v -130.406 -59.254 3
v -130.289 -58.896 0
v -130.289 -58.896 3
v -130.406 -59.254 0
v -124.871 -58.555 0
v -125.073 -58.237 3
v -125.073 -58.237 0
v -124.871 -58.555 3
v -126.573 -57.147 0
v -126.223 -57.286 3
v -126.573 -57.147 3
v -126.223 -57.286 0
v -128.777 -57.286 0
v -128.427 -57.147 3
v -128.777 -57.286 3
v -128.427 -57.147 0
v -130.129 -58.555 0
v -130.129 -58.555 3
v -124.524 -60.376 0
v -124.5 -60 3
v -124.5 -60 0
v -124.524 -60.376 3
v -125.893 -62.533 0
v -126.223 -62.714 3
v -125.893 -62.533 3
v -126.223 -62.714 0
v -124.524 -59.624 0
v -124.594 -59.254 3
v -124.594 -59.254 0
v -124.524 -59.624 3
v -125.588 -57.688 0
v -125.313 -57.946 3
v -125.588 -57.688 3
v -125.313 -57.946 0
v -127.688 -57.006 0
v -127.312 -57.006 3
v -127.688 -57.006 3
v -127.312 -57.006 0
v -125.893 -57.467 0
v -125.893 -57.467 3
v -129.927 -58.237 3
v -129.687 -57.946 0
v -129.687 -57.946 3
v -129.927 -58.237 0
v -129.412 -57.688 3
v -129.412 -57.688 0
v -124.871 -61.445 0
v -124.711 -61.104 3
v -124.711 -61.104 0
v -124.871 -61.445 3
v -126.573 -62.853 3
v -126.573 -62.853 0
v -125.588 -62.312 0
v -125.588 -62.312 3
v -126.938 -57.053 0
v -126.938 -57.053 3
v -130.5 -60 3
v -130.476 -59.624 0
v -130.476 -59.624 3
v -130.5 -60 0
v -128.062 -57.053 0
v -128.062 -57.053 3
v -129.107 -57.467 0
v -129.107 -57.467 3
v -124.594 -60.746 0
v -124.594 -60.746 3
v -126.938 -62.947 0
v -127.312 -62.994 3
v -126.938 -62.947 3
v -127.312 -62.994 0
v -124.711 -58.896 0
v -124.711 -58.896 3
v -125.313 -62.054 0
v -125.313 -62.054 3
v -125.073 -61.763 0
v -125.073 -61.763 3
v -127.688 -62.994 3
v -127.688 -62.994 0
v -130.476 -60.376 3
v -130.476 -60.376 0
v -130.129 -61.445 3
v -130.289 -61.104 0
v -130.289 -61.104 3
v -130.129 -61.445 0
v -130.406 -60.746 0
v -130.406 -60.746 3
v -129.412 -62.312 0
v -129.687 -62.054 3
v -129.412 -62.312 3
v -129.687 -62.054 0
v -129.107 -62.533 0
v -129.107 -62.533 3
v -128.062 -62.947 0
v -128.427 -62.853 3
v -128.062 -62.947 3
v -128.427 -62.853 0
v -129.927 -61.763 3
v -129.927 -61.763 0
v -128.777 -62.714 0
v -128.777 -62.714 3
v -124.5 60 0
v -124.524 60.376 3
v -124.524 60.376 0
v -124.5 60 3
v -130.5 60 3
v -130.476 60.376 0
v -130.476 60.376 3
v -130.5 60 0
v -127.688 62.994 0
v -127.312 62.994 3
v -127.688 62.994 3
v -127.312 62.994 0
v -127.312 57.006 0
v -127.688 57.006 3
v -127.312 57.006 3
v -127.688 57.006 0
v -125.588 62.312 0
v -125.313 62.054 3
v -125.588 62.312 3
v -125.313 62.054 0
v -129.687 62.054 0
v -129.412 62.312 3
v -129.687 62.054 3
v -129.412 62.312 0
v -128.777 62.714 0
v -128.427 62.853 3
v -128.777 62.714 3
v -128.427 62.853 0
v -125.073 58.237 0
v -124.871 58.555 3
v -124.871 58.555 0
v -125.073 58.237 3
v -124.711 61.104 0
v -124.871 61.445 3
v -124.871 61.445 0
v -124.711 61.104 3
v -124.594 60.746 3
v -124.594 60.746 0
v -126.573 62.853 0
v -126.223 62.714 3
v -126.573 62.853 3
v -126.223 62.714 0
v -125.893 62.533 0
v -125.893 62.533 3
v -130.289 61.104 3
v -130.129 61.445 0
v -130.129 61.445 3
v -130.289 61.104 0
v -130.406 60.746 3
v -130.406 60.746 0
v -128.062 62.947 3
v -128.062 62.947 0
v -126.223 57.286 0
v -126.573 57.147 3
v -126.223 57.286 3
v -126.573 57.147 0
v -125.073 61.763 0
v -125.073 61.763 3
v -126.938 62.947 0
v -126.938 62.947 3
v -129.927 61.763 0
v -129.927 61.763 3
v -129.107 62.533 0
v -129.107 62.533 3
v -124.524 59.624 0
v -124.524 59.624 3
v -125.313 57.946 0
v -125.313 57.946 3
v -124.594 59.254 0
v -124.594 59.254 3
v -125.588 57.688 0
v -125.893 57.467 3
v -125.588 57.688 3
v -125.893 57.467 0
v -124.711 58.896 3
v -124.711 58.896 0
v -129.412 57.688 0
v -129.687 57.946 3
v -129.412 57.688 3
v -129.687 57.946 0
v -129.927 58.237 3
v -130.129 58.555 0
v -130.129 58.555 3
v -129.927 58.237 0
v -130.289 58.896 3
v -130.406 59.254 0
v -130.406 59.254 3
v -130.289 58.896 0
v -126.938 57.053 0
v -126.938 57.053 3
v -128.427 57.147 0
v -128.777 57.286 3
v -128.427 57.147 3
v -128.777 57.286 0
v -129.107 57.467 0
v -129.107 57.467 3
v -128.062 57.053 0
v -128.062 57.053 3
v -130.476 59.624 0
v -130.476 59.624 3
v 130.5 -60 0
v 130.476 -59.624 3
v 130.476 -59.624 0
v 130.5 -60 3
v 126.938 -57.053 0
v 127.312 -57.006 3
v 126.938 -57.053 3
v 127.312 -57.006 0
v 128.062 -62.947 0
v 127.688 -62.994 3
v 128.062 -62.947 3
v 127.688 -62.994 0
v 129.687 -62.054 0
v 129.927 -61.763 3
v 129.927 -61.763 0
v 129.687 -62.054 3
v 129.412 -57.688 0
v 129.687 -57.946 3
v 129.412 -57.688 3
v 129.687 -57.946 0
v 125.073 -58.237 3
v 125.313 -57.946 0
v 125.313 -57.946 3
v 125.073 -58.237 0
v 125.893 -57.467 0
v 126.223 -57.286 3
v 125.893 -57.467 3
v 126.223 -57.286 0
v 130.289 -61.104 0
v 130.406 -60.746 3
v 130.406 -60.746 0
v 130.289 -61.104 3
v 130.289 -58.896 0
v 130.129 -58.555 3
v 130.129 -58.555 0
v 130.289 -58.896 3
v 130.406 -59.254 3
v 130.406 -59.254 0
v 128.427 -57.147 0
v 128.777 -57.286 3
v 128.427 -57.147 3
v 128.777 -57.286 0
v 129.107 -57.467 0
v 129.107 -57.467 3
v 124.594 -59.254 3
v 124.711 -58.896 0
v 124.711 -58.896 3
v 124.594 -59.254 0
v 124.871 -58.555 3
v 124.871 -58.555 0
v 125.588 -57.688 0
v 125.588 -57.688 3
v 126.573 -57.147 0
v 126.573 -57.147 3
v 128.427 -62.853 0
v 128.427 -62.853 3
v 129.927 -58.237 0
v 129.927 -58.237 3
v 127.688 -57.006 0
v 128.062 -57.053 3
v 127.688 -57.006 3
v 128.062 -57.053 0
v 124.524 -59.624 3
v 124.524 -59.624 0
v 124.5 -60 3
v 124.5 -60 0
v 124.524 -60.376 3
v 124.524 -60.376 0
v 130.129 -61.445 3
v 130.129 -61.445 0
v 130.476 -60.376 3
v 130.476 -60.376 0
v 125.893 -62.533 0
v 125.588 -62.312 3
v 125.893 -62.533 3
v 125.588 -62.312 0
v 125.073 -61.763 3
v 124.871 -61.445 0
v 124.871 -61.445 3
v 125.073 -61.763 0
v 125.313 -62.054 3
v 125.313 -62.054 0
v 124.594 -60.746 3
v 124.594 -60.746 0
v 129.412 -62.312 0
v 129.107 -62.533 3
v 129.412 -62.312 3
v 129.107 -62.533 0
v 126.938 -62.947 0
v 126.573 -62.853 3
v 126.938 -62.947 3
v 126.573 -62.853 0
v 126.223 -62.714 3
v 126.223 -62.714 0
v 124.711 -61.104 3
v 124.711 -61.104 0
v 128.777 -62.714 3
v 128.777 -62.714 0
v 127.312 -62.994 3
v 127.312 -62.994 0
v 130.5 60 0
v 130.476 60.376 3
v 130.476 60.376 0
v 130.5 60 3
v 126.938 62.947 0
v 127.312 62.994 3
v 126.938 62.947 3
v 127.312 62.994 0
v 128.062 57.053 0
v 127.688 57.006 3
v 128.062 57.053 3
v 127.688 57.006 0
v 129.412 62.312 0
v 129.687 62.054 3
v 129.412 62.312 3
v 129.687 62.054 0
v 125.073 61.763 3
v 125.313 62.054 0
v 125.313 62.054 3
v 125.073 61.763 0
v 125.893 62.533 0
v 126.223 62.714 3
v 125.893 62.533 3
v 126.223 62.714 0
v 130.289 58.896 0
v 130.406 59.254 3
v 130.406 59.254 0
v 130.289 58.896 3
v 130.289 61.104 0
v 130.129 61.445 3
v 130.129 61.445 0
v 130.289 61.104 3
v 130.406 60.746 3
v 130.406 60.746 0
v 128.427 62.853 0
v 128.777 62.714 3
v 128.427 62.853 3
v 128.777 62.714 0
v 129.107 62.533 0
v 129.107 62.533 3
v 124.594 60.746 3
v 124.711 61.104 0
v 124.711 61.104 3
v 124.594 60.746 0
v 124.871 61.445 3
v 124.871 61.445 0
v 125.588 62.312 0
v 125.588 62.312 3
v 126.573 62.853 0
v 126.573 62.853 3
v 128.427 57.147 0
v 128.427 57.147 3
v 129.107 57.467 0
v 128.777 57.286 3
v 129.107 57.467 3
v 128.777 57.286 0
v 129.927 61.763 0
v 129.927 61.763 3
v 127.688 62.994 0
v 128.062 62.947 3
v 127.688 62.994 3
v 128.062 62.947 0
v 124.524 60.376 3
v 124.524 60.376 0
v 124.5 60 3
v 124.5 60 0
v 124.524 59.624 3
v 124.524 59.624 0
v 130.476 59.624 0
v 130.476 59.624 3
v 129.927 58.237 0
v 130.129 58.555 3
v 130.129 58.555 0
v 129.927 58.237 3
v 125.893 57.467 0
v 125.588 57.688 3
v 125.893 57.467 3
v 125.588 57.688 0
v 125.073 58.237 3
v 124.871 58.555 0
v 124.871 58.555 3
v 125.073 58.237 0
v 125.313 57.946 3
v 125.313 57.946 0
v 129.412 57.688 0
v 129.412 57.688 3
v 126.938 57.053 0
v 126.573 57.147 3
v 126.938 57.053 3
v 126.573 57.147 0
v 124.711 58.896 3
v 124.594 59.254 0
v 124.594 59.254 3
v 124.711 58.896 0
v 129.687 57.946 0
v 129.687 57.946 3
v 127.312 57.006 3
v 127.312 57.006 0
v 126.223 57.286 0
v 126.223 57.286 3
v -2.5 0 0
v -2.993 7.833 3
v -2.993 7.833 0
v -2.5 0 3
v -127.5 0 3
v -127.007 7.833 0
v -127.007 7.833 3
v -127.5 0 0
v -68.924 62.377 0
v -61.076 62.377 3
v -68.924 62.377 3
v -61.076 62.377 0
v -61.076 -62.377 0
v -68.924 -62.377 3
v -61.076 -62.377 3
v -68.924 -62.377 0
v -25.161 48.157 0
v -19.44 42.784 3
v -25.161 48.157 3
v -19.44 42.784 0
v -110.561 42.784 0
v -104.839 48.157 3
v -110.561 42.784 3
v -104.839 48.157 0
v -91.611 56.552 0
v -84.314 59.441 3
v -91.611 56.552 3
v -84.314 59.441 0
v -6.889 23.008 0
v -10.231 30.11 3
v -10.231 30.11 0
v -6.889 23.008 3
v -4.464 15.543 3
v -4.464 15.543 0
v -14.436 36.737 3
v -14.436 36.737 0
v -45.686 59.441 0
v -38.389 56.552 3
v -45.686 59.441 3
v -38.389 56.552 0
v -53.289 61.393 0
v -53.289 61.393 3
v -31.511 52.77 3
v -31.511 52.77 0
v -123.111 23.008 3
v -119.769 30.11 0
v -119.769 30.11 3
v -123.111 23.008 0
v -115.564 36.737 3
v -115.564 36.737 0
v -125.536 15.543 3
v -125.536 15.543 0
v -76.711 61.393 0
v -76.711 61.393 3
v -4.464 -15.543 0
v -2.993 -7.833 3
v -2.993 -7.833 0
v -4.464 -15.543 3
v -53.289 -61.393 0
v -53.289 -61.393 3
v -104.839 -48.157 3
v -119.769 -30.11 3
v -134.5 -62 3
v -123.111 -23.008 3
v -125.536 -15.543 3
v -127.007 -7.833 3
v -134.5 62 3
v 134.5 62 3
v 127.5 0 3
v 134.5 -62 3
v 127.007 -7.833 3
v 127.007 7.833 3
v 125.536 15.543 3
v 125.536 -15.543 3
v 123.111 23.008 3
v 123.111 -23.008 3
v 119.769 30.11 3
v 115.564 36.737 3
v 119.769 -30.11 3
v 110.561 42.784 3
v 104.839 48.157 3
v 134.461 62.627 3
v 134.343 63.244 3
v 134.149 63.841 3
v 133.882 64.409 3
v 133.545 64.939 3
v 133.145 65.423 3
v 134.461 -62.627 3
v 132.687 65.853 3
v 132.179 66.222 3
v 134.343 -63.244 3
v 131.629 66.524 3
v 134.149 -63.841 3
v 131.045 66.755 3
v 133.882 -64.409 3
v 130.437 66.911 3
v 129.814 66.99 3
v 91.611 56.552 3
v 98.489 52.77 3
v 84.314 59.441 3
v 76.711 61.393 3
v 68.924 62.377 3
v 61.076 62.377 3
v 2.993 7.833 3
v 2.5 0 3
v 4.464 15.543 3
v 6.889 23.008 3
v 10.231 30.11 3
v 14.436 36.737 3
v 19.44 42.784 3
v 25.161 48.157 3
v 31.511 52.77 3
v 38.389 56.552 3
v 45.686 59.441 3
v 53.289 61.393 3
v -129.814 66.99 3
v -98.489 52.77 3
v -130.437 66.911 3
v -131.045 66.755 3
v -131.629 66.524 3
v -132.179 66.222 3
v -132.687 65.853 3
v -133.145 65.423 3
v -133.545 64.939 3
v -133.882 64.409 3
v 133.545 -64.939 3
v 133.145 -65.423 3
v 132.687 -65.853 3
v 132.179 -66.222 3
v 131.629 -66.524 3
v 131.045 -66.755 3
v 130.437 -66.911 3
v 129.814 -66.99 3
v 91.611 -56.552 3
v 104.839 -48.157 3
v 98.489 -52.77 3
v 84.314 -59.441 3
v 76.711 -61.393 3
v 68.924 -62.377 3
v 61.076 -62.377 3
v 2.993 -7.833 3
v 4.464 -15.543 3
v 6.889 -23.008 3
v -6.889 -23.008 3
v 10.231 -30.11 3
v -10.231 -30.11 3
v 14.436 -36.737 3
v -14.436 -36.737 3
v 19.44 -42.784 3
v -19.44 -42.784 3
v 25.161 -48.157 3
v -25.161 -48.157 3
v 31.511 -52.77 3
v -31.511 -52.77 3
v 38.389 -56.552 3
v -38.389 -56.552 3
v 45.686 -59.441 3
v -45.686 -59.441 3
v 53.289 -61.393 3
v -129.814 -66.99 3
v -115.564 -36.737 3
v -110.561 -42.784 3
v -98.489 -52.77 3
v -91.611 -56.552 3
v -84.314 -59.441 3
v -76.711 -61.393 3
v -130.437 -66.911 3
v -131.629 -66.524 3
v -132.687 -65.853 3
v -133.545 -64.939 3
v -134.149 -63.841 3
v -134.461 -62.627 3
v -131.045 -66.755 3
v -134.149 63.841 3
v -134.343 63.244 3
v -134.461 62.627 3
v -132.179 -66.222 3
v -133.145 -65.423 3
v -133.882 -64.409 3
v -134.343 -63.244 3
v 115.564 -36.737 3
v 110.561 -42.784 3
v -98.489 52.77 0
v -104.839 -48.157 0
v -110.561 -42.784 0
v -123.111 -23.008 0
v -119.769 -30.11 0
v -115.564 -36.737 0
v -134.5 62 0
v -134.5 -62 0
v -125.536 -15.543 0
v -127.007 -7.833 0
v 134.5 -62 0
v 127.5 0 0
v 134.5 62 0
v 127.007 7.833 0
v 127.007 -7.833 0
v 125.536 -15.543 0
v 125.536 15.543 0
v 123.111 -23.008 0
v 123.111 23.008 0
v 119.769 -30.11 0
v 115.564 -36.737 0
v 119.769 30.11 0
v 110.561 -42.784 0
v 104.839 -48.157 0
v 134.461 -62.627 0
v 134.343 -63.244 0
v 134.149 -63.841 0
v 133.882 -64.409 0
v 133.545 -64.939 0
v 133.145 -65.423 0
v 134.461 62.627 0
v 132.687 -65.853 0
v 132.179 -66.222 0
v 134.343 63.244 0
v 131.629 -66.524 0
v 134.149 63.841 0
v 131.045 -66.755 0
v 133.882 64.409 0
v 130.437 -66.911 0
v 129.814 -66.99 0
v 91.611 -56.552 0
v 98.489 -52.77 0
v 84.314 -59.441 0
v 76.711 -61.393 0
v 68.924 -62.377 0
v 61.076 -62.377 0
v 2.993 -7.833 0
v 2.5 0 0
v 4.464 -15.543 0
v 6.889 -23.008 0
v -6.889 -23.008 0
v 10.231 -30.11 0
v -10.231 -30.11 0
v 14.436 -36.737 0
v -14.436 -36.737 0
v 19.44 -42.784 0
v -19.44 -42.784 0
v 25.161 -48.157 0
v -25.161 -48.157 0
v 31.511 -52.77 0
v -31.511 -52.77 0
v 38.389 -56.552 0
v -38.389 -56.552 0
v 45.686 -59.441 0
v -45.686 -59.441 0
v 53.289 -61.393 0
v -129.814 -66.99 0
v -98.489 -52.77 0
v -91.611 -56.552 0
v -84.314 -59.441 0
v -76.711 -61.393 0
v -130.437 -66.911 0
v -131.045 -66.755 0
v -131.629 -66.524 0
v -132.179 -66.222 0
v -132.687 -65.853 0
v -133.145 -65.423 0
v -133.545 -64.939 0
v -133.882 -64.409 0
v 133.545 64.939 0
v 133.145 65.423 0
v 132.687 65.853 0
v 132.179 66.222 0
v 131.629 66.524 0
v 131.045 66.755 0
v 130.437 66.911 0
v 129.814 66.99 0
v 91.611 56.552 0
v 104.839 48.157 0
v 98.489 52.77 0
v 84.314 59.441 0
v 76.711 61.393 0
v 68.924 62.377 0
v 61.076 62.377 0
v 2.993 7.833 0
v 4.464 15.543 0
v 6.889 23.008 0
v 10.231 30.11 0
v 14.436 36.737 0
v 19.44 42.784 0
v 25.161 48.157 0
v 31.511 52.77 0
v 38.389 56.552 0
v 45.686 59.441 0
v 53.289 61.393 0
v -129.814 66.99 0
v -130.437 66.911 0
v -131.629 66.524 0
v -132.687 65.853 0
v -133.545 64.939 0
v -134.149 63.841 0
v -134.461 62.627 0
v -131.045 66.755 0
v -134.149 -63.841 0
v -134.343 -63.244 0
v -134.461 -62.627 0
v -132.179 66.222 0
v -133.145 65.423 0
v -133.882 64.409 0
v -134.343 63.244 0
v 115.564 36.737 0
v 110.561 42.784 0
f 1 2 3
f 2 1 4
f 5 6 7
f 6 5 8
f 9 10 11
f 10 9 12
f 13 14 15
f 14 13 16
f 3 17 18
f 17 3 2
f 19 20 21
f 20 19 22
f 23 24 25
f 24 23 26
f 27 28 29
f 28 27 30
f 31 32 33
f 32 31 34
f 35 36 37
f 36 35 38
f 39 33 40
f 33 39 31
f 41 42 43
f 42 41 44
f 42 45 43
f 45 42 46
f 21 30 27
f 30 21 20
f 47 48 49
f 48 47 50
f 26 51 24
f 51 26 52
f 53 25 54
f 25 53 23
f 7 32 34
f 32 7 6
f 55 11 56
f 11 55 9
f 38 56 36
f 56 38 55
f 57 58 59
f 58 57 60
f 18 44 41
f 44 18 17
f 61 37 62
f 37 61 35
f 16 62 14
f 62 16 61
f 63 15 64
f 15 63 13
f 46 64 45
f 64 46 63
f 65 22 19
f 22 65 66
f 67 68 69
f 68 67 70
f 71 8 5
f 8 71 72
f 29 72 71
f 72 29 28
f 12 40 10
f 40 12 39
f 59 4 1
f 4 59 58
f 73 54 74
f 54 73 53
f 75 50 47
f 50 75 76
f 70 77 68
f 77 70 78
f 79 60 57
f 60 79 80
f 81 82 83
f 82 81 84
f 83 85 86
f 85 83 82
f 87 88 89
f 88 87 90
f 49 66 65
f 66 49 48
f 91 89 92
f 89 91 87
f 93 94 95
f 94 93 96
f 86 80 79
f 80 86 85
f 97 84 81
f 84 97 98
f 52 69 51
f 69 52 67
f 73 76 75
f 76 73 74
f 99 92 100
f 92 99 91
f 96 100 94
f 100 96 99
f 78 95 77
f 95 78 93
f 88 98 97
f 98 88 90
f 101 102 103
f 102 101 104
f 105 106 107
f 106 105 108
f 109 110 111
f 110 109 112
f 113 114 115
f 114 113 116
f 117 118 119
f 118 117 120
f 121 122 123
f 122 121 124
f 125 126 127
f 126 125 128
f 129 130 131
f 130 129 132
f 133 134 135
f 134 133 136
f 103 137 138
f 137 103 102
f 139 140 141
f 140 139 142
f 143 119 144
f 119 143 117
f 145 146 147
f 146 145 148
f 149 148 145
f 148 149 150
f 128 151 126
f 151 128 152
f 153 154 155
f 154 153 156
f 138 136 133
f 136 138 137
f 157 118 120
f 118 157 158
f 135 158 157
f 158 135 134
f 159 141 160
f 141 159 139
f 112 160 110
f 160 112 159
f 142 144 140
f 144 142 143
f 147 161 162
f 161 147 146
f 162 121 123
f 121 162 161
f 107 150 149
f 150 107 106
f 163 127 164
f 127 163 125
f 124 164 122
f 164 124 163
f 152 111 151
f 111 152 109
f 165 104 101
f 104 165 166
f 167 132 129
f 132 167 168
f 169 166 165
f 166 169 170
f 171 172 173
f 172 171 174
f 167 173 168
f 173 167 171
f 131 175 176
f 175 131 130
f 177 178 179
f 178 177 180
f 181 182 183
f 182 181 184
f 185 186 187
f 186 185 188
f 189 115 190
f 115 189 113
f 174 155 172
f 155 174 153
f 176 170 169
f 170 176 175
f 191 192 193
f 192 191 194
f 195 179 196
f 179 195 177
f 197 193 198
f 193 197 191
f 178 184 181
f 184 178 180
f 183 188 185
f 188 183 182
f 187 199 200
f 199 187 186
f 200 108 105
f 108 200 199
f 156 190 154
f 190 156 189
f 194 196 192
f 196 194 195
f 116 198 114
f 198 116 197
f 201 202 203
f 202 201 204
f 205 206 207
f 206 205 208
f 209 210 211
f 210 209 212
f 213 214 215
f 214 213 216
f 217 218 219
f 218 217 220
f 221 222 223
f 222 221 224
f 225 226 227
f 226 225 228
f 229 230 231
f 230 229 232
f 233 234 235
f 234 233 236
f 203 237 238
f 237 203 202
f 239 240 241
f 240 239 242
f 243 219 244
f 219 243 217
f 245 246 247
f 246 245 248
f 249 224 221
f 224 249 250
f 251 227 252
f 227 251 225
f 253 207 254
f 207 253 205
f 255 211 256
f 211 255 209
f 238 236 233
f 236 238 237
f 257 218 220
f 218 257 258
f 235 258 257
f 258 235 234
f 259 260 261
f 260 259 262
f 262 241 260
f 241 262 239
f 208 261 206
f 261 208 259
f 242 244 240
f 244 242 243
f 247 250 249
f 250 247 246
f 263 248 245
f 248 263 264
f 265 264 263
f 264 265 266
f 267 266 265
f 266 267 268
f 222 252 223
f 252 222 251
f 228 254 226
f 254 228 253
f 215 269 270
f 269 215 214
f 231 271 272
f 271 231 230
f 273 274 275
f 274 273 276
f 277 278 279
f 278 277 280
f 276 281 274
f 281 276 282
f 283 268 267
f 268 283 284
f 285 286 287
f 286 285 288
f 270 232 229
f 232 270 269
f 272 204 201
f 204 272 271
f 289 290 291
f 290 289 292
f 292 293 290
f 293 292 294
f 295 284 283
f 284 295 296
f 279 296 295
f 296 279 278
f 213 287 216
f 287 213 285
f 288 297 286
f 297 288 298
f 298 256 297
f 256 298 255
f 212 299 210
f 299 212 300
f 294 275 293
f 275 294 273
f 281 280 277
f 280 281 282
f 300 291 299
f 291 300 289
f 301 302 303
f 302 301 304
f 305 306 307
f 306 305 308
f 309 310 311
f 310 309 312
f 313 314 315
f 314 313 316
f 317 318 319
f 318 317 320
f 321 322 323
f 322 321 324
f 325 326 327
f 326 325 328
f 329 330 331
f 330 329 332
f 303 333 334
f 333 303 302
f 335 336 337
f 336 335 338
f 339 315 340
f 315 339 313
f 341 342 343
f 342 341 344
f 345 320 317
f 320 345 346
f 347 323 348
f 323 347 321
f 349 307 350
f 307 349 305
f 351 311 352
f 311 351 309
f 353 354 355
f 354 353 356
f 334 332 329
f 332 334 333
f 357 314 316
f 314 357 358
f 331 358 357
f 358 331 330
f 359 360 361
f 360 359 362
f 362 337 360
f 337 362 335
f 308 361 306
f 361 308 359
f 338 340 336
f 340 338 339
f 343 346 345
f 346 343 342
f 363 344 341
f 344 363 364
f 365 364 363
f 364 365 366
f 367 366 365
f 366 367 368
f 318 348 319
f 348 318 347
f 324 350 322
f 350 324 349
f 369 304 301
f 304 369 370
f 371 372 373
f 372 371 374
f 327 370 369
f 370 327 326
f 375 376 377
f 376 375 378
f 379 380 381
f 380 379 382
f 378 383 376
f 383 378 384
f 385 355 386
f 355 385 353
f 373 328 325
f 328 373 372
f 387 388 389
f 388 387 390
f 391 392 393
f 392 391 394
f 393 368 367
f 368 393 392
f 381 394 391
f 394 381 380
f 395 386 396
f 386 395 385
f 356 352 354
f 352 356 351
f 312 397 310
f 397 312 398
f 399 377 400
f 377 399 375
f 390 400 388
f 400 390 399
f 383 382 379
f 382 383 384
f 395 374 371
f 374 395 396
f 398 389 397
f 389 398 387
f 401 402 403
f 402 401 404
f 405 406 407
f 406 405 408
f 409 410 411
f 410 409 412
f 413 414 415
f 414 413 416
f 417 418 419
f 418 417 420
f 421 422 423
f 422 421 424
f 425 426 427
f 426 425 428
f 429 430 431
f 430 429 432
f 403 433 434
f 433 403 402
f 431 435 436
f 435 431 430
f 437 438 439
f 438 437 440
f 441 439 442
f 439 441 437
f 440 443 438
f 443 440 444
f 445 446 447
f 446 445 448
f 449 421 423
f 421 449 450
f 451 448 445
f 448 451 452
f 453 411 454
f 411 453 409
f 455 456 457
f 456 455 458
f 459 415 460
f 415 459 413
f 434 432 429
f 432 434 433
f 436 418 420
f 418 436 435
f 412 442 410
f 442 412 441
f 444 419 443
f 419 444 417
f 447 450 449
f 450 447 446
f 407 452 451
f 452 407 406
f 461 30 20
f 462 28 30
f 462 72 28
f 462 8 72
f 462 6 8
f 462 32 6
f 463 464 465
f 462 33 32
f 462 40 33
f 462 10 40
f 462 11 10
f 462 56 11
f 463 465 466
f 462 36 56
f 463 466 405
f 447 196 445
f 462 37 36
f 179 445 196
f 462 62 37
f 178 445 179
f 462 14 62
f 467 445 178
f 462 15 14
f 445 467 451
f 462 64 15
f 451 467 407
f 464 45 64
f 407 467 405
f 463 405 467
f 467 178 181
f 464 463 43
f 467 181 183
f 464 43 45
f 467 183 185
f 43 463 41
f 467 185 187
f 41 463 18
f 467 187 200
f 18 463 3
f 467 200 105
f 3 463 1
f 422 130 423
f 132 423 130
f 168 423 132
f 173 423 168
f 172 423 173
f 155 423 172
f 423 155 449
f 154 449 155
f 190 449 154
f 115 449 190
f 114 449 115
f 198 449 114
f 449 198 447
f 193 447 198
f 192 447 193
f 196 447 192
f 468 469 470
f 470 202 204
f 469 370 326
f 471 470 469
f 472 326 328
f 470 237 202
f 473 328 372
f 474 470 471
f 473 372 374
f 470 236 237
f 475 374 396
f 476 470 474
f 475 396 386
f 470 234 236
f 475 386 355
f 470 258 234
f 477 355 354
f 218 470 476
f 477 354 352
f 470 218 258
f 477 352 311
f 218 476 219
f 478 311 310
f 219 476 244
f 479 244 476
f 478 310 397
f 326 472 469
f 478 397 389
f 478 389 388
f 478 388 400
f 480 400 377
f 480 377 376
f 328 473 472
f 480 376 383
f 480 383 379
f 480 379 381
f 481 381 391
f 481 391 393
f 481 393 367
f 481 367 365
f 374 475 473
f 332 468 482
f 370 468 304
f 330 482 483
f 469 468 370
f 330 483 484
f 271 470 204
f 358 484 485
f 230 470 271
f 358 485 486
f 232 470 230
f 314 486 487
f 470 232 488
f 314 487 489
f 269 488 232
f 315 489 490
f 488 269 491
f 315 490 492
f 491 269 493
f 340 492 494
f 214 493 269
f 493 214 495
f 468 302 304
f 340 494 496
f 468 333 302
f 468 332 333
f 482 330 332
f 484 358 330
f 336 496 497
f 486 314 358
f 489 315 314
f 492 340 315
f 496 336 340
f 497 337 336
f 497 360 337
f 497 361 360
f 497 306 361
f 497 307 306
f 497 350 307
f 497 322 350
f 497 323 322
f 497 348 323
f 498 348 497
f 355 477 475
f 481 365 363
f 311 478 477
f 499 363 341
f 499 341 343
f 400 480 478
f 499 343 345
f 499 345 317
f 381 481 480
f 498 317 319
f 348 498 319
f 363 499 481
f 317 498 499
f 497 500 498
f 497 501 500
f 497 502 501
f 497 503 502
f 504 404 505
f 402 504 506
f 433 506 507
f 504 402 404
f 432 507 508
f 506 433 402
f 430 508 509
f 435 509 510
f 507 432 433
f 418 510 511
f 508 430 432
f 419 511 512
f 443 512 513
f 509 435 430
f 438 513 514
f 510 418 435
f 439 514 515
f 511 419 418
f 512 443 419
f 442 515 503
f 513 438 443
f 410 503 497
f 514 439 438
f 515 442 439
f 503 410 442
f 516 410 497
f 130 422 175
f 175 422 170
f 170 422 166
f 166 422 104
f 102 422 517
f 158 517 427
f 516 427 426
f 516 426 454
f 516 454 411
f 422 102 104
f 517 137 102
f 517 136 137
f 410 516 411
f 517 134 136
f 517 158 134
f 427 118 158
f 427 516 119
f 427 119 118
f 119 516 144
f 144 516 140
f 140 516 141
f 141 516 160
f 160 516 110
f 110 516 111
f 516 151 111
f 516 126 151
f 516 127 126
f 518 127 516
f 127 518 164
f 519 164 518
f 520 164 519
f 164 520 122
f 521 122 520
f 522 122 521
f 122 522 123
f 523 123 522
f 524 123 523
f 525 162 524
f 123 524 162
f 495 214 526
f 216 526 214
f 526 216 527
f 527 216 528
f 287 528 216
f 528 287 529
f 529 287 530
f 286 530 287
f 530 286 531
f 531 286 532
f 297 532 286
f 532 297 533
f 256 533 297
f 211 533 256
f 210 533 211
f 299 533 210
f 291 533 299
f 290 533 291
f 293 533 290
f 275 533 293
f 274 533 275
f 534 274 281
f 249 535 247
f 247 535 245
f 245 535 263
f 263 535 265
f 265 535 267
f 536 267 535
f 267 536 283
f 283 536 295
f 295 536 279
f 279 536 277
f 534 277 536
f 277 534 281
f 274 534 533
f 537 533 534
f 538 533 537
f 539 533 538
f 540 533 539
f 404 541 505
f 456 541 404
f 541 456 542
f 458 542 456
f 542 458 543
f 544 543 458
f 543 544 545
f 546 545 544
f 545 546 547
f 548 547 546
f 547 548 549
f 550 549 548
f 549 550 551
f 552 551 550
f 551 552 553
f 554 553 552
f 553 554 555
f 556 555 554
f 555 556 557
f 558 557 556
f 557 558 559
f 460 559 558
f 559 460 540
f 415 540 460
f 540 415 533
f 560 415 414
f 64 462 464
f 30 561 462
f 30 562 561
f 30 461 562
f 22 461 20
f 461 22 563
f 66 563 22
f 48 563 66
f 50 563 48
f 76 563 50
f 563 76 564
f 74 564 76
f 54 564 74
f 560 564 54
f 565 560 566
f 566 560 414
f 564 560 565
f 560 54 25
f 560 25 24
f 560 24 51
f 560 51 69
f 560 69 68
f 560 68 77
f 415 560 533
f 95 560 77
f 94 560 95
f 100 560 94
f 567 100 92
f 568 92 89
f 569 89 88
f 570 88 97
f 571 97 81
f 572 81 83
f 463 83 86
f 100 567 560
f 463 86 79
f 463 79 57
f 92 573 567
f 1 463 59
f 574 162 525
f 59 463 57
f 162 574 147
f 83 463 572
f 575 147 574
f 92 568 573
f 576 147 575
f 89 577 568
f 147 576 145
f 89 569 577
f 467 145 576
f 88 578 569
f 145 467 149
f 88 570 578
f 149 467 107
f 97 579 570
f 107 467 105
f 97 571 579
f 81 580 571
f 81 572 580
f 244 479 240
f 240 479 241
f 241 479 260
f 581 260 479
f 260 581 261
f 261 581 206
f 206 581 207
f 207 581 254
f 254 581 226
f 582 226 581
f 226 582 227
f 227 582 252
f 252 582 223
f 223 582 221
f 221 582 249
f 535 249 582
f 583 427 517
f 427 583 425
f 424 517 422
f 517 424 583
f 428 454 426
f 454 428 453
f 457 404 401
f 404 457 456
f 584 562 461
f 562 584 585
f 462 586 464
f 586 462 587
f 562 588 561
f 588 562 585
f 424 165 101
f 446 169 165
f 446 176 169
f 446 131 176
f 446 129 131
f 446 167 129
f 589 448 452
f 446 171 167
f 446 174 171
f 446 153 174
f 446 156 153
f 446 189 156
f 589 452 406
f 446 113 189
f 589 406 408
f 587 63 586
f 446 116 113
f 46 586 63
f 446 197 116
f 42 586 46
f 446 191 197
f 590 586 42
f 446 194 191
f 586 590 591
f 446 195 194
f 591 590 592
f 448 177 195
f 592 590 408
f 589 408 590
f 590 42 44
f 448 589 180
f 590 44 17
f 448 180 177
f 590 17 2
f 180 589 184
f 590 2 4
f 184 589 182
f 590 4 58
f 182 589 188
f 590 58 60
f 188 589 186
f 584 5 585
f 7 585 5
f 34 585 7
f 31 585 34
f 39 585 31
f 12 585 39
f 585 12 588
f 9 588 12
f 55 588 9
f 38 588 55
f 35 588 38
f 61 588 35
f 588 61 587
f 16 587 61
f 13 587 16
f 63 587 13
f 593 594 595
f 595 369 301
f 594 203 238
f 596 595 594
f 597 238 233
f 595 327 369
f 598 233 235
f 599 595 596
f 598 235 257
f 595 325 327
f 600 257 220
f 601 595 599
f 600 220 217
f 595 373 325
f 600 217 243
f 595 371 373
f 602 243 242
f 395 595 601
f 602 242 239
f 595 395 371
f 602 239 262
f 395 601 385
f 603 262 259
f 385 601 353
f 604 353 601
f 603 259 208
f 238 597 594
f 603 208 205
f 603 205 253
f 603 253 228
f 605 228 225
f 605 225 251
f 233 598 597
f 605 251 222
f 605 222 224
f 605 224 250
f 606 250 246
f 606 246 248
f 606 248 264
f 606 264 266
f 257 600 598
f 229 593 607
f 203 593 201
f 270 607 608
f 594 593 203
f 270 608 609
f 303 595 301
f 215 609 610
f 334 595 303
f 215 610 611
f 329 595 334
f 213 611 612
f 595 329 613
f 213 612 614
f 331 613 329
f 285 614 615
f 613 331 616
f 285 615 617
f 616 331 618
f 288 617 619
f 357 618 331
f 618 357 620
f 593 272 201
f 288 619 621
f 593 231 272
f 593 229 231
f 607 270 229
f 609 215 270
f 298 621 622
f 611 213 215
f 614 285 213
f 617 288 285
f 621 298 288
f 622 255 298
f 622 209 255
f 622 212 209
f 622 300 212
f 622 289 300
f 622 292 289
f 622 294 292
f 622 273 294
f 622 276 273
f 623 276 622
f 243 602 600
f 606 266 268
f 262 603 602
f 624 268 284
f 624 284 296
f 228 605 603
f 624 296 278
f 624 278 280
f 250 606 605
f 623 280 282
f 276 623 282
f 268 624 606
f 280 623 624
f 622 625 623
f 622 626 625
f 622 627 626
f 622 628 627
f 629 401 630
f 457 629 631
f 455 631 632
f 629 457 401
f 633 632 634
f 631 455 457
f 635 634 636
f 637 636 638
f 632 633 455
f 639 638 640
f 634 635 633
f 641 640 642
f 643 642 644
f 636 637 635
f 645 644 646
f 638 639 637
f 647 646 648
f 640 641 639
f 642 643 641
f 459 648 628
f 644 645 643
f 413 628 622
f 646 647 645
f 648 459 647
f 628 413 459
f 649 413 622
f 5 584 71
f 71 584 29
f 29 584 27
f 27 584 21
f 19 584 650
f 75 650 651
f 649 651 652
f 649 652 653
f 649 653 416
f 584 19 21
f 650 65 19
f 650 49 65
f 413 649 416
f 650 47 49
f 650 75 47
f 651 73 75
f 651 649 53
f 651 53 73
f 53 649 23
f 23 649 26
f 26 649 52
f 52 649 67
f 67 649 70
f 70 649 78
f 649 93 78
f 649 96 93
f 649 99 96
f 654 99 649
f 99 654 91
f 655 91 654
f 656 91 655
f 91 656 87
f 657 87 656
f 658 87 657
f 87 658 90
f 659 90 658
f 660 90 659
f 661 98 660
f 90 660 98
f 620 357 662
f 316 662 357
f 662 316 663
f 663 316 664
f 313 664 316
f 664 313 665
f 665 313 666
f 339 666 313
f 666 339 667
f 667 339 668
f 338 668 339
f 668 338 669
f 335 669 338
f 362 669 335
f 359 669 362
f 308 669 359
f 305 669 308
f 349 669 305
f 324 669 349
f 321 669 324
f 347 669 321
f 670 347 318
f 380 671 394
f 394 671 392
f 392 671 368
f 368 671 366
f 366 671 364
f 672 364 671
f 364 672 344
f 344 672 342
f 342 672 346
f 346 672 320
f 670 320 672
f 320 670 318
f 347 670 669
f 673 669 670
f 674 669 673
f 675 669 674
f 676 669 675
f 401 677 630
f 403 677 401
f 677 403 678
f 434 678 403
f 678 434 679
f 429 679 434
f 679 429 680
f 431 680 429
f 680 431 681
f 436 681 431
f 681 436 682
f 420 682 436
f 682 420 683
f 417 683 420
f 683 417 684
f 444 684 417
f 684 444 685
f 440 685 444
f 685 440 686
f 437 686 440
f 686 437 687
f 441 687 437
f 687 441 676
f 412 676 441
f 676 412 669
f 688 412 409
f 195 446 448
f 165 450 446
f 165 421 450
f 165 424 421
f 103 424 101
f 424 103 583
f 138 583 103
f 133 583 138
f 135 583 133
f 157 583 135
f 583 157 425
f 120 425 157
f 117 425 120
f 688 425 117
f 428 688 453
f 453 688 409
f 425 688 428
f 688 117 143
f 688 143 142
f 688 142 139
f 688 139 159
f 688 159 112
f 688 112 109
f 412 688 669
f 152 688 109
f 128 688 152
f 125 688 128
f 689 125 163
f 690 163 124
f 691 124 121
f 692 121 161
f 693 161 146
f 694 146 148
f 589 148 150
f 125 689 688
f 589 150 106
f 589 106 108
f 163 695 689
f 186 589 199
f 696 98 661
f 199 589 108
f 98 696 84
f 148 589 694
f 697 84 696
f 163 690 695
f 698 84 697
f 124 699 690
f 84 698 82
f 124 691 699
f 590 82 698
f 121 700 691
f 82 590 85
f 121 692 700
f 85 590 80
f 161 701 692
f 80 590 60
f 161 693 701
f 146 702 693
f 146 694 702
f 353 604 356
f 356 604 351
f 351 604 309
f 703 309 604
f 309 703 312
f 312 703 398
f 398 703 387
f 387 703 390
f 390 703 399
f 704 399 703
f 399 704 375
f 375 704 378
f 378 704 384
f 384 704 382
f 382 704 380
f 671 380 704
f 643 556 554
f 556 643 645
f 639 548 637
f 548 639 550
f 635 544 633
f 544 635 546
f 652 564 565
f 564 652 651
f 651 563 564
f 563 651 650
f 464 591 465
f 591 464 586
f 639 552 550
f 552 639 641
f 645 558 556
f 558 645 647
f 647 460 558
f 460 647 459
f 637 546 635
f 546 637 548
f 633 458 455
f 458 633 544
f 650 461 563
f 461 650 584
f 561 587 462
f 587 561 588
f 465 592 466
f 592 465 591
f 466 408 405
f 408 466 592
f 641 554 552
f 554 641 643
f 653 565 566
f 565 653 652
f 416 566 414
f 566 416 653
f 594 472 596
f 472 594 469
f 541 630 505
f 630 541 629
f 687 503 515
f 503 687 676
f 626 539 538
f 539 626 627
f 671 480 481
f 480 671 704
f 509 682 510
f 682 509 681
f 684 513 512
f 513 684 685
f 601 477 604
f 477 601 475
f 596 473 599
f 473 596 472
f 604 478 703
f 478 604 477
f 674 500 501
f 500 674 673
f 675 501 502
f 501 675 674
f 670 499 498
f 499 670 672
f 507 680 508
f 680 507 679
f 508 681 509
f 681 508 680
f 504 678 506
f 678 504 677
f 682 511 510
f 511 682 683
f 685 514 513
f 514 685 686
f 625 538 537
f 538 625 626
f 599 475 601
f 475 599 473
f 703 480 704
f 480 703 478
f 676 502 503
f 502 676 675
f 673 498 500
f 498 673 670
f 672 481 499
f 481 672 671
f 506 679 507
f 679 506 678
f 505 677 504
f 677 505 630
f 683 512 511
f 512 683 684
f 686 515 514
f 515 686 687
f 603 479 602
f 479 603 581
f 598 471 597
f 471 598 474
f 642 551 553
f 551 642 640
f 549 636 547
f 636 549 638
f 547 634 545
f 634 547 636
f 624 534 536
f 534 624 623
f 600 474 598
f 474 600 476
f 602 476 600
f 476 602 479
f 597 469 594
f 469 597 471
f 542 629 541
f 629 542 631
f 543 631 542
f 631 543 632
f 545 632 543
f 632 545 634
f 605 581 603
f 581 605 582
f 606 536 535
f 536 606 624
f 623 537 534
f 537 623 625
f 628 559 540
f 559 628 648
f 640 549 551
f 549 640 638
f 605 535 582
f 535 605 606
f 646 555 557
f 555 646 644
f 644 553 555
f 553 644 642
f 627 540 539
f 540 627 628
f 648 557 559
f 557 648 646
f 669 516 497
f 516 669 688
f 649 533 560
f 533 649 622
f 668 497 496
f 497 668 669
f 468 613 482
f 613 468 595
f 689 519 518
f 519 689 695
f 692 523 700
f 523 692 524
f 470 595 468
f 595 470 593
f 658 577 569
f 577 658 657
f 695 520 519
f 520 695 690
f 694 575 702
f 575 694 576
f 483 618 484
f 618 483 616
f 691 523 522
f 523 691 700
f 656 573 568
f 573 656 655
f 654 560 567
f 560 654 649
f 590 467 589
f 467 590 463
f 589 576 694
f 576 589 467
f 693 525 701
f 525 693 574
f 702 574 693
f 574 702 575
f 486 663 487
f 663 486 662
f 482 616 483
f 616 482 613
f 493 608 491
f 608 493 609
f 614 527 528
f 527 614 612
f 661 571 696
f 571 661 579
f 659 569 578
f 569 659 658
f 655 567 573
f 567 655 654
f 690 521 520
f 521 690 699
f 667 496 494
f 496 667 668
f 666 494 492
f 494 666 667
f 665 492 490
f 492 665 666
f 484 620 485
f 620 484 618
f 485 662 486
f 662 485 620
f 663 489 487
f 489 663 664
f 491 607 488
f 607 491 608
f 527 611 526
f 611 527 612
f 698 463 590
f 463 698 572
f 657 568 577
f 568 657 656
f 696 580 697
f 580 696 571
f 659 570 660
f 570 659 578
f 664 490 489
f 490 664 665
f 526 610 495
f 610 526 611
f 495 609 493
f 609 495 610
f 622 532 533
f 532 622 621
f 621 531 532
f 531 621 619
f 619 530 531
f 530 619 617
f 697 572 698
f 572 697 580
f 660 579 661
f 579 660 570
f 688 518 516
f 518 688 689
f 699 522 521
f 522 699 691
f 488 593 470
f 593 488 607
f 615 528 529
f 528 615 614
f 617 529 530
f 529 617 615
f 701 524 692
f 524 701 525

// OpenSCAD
$fn = 50;


difference() {
	union() {
		hull() {
			translate(v = [-129.5000000000, 62.0000000000, 0]) {
				cylinder(h = 3, r = 5);
			}
			translate(v = [129.5000000000, 62.0000000000, 0]) {
				cylinder(h = 3, r = 5);
			}
			translate(v = [-129.5000000000, -62.0000000000, 0]) {
				cylinder(h = 3, r = 5);
			}
			translate(v = [129.5000000000, -62.0000000000, 0]) {
				cylinder(h = 3, r = 5);
			}
		}
	}
	union() {
		#translate(v = [-127.5000000000, -60.0000000000, -100.0000000000]) {
			cylinder(h = 200, r = 3.0000000000);
		}
		#translate(v = [-127.5000000000, 60.0000000000, -100.0000000000]) {
			cylinder(h = 200, r = 3.0000000000);
		}
		#translate(v = [127.5000000000, -60.0000000000, -100.0000000000]) {
			cylinder(h = 200, r = 3.0000000000);
		}
		#translate(v = [127.5000000000, 60.0000000000, -100.0000000000]) {
			cylinder(h = 200, r = 3.0000000000);
		}
		#translate(v = [-65.0000000000, 0, 0]) {
			cylinder(h = 3, r = 62.5000000000);
		}
		#translate(v = [65.0000000000, 0, 0]) {
			cylinder(h = 3, r = 62.5000000000);
		}
	}
}
